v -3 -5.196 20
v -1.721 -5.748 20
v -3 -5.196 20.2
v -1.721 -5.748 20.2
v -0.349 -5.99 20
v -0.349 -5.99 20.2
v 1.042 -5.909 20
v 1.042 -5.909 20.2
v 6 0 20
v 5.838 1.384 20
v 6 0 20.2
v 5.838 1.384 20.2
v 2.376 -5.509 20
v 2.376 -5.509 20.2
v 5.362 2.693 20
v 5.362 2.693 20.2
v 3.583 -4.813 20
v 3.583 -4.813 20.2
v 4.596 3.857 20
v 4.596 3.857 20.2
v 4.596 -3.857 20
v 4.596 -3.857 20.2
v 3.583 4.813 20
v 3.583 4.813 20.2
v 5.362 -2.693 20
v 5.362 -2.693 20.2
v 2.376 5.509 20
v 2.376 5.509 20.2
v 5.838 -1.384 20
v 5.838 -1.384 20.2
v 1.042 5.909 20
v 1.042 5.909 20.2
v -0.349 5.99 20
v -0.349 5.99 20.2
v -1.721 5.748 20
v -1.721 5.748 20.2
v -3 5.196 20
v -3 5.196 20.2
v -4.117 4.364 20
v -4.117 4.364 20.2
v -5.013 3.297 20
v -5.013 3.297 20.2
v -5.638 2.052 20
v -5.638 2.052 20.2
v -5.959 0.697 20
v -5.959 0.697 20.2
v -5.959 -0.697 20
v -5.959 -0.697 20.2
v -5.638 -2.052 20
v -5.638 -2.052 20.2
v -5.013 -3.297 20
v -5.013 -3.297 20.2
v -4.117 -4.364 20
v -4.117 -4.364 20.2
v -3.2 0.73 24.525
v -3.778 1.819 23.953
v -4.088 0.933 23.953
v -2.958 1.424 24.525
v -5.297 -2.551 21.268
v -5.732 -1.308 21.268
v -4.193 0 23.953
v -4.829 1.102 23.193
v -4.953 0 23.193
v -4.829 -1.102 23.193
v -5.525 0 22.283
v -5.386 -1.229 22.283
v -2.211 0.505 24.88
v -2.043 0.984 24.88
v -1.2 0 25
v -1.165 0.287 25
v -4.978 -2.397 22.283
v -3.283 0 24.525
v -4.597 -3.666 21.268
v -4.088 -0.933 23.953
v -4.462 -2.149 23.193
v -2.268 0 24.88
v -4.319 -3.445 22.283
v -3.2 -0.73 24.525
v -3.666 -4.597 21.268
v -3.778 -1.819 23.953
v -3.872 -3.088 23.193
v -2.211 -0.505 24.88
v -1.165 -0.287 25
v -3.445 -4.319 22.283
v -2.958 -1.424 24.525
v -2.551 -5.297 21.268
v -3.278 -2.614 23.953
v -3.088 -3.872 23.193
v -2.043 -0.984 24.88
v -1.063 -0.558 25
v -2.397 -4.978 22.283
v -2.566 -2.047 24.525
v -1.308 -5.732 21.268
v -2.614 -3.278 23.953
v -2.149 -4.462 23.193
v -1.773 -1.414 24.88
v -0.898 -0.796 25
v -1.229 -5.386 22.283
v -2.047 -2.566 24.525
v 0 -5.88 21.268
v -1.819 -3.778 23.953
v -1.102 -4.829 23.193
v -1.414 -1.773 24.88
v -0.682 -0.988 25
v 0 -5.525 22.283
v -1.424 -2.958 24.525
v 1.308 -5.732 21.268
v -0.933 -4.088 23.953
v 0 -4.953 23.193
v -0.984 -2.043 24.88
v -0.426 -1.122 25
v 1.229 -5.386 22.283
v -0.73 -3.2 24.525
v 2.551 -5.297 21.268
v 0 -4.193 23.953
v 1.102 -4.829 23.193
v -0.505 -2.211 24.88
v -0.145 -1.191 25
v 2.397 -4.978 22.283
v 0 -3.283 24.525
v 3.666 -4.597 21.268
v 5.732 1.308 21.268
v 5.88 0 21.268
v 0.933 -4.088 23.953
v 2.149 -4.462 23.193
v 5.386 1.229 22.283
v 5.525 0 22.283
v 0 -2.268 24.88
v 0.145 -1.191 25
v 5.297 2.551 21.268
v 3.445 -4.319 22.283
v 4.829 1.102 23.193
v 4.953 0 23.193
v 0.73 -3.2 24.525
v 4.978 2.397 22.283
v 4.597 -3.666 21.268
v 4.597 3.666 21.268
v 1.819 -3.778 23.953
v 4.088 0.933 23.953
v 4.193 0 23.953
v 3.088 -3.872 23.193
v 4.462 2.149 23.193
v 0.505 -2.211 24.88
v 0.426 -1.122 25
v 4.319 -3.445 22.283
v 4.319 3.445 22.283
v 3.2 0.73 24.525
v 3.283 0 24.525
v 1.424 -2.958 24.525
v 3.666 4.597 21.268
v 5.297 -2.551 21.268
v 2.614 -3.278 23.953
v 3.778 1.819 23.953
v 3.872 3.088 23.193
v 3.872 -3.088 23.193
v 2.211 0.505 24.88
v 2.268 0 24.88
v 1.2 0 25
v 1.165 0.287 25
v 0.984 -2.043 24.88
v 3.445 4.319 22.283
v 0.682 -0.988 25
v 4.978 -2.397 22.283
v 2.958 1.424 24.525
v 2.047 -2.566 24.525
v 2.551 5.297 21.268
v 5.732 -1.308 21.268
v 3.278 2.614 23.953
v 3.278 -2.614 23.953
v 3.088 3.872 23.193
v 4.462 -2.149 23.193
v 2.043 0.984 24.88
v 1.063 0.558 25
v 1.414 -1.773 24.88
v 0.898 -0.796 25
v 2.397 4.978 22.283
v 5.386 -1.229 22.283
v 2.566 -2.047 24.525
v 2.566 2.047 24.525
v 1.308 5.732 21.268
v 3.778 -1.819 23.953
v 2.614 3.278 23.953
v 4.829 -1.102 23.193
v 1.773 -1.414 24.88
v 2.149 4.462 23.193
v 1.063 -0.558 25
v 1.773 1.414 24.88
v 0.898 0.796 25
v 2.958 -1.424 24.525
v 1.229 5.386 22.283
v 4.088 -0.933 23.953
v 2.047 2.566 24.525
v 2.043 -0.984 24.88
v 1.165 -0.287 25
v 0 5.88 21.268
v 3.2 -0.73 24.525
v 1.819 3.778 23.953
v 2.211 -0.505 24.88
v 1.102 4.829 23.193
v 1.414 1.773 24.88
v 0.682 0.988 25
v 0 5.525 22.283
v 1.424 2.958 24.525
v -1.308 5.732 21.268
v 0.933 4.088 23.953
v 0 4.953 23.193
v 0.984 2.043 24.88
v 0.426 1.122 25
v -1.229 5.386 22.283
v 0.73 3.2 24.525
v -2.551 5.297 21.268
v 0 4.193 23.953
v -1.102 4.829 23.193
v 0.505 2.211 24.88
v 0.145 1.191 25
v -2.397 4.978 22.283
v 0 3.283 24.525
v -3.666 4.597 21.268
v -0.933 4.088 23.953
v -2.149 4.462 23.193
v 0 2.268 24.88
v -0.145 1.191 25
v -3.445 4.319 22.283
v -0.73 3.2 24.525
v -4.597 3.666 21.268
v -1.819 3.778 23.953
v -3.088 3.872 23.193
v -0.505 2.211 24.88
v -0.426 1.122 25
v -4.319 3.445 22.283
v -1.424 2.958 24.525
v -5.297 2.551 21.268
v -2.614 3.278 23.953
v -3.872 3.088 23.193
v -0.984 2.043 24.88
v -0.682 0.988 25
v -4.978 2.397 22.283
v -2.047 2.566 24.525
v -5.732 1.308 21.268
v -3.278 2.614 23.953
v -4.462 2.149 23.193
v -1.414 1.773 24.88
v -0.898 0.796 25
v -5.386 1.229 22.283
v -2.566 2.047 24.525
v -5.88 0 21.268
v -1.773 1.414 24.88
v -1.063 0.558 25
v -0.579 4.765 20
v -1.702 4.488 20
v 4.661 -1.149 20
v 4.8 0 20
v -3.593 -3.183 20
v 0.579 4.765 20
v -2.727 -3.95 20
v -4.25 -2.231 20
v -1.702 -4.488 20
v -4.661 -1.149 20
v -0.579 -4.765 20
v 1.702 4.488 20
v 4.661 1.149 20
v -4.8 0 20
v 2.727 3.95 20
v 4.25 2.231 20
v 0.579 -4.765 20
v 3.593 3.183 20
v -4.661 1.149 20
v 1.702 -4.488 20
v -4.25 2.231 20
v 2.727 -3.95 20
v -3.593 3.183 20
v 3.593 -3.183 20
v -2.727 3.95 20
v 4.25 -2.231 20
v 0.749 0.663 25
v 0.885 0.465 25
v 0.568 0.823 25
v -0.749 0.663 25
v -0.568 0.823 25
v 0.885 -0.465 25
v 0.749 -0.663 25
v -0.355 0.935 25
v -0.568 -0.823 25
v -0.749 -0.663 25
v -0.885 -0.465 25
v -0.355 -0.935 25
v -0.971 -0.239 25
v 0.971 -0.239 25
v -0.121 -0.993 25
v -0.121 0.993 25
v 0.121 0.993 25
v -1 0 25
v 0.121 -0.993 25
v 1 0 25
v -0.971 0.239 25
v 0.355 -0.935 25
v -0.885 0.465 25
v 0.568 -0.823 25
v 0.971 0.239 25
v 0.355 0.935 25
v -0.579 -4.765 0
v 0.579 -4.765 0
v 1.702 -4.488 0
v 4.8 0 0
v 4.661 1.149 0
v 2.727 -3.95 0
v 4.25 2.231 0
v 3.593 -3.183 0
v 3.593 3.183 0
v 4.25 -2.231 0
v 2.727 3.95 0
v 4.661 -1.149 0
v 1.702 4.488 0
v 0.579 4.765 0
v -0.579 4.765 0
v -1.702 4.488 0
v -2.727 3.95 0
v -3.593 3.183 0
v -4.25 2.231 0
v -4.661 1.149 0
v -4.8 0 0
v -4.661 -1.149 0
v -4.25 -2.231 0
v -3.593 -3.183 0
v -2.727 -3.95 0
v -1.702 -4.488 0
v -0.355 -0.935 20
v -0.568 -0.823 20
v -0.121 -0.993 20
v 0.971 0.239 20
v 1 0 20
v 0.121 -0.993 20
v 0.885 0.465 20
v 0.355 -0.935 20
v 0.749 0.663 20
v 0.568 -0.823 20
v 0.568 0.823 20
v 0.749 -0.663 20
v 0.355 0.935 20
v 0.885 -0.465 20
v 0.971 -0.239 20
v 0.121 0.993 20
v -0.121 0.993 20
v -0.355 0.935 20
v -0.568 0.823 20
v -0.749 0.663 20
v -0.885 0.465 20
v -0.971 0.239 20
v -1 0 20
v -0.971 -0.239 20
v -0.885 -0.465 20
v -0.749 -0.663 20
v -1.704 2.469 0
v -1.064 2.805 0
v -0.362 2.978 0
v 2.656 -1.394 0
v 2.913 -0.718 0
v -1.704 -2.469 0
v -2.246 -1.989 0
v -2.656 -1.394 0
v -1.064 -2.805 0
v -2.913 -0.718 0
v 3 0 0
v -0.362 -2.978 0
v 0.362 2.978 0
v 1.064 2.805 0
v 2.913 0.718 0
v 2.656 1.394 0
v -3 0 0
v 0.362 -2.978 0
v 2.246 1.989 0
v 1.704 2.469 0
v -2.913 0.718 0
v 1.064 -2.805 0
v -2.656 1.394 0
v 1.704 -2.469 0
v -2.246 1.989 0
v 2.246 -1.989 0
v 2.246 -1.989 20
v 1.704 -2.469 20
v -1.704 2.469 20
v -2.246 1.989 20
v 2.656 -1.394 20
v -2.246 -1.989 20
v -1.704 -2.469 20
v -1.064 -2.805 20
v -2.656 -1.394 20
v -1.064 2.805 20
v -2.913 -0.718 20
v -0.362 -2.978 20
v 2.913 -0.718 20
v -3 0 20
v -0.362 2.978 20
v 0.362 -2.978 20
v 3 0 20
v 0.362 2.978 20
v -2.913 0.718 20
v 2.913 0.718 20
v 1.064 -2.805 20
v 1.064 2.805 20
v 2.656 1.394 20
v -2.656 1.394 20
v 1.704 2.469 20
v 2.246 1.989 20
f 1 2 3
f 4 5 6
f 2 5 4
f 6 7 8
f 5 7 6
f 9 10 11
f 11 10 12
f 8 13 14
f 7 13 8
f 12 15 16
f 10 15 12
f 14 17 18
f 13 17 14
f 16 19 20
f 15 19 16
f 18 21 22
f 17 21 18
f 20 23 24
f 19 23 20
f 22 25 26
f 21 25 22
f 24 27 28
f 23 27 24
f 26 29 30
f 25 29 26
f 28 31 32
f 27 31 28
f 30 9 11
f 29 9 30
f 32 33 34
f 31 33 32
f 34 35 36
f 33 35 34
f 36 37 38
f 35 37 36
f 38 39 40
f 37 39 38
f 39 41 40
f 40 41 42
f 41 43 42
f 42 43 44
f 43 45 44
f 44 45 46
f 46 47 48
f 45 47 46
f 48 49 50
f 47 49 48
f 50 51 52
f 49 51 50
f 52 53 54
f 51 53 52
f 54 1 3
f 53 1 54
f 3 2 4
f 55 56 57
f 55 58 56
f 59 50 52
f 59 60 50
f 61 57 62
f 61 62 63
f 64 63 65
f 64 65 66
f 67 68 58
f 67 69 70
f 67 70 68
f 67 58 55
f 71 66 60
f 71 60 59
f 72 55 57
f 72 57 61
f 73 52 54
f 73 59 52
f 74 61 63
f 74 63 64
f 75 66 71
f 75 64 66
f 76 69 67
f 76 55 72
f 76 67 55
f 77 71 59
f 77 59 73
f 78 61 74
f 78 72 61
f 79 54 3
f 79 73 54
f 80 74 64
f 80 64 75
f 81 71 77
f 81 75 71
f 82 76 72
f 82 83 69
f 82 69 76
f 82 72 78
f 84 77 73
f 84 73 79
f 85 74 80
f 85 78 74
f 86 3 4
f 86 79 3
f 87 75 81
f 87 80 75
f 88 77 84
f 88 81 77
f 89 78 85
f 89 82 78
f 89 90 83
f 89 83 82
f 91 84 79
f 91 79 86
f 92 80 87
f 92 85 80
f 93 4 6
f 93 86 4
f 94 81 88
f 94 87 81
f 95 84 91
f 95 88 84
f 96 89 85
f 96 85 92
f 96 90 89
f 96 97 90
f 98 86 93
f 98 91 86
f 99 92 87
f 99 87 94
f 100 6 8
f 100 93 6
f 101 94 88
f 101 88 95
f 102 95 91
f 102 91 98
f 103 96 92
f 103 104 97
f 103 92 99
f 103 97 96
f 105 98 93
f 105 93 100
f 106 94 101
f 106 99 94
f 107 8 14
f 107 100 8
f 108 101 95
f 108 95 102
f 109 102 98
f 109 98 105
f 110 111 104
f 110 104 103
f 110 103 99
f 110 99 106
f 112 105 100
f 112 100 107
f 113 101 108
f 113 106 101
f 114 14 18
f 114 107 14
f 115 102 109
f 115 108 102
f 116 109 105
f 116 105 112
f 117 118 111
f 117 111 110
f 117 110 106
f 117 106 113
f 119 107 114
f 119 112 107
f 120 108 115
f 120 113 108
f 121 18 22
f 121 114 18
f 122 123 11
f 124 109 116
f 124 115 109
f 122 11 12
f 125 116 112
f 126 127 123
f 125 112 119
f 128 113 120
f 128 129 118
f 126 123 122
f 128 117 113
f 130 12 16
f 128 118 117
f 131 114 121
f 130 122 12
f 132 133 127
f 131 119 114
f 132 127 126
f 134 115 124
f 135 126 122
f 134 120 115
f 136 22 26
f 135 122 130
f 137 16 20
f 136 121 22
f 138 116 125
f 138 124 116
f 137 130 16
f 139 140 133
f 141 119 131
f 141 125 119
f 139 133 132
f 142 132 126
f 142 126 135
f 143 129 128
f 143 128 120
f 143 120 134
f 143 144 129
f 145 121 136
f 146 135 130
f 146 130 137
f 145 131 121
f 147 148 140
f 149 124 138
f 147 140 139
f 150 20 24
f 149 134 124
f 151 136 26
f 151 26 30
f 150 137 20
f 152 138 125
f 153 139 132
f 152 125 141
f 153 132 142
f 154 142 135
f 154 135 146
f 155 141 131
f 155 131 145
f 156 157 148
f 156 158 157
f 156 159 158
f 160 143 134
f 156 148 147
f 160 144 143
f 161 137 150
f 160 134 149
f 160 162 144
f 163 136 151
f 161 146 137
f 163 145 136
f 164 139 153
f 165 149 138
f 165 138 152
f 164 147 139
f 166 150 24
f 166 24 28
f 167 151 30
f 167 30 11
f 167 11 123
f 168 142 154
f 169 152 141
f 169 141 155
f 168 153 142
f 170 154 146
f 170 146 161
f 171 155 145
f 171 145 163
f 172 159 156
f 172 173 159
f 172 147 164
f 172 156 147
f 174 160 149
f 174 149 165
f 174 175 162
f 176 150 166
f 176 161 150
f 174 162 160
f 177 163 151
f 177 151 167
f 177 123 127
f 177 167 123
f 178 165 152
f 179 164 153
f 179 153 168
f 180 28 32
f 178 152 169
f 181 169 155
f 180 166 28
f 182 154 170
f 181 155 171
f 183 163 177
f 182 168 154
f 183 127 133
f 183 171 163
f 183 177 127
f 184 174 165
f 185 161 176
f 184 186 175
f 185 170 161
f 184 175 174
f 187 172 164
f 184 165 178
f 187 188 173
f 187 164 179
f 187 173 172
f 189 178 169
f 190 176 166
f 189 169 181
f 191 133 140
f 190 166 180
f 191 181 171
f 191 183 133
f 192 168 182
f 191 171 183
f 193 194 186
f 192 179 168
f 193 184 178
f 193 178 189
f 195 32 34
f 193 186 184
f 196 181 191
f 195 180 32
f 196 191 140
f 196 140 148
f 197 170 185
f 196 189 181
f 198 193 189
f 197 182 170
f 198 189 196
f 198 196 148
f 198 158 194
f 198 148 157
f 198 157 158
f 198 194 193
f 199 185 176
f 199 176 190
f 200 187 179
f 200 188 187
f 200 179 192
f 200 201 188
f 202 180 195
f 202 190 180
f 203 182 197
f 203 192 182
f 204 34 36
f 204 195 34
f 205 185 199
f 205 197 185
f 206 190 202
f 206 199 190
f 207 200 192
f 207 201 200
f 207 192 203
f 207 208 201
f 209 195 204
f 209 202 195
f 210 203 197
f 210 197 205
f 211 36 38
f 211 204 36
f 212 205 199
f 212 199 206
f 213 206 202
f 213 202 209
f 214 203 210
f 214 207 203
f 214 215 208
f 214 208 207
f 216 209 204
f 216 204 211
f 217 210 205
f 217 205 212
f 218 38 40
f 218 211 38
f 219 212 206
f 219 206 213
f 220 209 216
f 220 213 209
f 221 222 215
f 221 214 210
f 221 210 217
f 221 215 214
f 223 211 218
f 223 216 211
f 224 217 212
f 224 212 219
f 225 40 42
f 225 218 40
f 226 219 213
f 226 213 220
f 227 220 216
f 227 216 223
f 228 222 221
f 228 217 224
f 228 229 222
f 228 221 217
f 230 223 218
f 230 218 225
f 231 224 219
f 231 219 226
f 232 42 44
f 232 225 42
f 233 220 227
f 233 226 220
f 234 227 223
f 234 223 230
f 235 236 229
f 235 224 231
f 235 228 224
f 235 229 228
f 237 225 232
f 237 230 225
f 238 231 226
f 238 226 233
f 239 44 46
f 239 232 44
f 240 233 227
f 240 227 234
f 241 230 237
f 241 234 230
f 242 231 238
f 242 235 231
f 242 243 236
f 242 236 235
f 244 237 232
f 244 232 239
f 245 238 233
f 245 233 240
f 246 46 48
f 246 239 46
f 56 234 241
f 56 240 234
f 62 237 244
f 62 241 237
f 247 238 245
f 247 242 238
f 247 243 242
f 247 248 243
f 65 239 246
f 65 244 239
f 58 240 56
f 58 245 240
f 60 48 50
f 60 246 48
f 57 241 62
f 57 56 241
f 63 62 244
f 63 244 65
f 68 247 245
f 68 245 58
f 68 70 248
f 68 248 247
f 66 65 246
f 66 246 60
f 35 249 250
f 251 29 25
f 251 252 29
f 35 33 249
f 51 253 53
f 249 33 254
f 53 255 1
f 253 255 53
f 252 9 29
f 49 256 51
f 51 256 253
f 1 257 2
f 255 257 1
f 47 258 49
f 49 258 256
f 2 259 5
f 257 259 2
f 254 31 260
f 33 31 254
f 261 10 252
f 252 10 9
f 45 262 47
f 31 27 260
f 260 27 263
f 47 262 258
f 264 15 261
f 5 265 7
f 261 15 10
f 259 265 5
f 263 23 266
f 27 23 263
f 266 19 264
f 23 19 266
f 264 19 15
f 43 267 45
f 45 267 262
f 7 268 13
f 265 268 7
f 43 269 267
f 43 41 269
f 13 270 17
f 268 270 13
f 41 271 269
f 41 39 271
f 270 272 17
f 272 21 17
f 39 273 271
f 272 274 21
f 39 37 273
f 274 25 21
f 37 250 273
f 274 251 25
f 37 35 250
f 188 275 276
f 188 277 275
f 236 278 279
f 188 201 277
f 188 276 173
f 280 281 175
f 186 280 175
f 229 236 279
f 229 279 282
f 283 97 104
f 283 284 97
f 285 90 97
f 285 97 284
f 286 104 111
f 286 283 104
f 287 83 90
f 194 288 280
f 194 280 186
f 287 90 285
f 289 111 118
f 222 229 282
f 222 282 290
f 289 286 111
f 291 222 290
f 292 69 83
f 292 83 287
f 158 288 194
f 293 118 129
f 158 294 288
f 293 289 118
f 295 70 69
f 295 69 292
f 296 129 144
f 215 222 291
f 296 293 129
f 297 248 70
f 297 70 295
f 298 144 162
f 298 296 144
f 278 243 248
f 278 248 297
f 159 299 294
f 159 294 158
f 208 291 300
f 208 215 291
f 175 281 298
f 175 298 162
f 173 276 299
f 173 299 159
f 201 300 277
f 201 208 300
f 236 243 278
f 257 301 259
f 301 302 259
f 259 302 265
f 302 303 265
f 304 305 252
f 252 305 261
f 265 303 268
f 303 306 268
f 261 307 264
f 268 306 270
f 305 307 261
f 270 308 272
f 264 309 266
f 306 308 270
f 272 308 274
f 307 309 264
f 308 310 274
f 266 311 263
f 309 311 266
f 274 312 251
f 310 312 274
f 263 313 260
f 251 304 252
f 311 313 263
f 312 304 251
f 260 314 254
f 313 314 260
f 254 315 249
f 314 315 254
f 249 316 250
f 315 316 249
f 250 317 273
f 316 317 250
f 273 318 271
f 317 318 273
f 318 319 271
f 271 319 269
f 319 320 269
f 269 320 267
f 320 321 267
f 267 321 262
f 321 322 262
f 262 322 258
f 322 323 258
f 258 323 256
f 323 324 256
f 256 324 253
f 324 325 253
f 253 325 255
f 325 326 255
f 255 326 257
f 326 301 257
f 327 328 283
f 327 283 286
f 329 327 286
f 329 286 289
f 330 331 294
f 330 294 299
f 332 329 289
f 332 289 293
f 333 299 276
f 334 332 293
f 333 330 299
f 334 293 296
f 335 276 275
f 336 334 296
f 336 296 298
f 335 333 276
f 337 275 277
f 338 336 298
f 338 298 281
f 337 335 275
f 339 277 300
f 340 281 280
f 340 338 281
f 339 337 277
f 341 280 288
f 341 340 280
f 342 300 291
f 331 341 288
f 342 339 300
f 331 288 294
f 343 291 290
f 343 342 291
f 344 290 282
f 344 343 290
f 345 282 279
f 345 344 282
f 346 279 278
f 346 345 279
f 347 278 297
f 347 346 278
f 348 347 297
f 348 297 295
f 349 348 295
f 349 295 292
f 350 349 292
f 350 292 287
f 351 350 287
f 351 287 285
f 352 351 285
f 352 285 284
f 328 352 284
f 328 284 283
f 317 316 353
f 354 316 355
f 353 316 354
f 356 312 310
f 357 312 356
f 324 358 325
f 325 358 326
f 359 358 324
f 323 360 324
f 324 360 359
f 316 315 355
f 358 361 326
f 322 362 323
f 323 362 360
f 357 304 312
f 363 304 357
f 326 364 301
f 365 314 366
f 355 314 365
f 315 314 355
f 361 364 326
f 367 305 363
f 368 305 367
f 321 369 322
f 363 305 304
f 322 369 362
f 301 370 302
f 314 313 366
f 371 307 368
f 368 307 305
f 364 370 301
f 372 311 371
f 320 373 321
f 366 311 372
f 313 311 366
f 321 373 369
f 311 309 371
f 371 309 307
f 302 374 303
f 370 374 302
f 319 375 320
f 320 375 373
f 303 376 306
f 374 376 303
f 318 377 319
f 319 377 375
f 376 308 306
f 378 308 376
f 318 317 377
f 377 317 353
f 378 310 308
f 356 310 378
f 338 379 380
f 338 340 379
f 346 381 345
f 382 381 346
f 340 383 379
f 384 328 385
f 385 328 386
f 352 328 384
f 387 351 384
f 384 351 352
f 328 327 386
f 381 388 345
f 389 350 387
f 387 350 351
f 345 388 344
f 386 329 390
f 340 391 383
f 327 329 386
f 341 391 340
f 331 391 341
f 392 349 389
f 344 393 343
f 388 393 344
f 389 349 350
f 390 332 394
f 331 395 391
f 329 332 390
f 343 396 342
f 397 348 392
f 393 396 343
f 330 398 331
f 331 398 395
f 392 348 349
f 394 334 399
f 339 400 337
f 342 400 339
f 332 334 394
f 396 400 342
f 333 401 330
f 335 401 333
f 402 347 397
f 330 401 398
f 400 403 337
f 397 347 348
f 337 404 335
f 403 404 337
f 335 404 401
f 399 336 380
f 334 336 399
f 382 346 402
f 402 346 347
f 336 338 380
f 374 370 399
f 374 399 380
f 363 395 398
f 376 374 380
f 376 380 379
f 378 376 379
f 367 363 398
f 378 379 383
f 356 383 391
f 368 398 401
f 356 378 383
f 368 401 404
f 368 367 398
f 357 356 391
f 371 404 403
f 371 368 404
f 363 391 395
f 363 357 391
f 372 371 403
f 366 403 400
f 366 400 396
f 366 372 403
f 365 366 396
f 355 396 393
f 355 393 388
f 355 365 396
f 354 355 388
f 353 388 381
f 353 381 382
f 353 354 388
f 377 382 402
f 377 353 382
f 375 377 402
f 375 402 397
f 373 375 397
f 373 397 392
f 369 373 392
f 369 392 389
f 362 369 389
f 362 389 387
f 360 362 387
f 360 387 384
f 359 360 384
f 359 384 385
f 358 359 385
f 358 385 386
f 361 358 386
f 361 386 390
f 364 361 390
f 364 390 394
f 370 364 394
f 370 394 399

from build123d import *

# Parameters (mm, degrees)
SKETCH_R      = 4.8
SKETCH_R_2    = 3
PAD_DEPTH     = 20
SKETCH001_R   = 6
SKETCH001_R_2 = 1
PAD001_DEPTH  = 5
FILLET_R      = 4.8


with BuildPart() as part:
    # Sketch → Pad (new body)
    with BuildSketch(Plane.XY):
        Circle(SKETCH_R)
        Circle(SKETCH_R_2, mode=Mode.SUBTRACT)
    extrude(amount=PAD_DEPTH)

    # Sketch001 (on Face4 of Pad) → Pad001 (join)
    with BuildSketch(Plane.XY.offset(20)):
        Circle(SKETCH001_R)
        Circle(SKETCH001_R_2, mode=Mode.SUBTRACT)
    extrude(amount=PAD001_DEPTH)

    # Fillet
    fillet_edges = [part.edges().sort_by_distance(p)[0] for p in [
        (-6, 0, 25),
    ]]
    fillet(fillet_edges, radius=FILLET_R)


solid = part.part
